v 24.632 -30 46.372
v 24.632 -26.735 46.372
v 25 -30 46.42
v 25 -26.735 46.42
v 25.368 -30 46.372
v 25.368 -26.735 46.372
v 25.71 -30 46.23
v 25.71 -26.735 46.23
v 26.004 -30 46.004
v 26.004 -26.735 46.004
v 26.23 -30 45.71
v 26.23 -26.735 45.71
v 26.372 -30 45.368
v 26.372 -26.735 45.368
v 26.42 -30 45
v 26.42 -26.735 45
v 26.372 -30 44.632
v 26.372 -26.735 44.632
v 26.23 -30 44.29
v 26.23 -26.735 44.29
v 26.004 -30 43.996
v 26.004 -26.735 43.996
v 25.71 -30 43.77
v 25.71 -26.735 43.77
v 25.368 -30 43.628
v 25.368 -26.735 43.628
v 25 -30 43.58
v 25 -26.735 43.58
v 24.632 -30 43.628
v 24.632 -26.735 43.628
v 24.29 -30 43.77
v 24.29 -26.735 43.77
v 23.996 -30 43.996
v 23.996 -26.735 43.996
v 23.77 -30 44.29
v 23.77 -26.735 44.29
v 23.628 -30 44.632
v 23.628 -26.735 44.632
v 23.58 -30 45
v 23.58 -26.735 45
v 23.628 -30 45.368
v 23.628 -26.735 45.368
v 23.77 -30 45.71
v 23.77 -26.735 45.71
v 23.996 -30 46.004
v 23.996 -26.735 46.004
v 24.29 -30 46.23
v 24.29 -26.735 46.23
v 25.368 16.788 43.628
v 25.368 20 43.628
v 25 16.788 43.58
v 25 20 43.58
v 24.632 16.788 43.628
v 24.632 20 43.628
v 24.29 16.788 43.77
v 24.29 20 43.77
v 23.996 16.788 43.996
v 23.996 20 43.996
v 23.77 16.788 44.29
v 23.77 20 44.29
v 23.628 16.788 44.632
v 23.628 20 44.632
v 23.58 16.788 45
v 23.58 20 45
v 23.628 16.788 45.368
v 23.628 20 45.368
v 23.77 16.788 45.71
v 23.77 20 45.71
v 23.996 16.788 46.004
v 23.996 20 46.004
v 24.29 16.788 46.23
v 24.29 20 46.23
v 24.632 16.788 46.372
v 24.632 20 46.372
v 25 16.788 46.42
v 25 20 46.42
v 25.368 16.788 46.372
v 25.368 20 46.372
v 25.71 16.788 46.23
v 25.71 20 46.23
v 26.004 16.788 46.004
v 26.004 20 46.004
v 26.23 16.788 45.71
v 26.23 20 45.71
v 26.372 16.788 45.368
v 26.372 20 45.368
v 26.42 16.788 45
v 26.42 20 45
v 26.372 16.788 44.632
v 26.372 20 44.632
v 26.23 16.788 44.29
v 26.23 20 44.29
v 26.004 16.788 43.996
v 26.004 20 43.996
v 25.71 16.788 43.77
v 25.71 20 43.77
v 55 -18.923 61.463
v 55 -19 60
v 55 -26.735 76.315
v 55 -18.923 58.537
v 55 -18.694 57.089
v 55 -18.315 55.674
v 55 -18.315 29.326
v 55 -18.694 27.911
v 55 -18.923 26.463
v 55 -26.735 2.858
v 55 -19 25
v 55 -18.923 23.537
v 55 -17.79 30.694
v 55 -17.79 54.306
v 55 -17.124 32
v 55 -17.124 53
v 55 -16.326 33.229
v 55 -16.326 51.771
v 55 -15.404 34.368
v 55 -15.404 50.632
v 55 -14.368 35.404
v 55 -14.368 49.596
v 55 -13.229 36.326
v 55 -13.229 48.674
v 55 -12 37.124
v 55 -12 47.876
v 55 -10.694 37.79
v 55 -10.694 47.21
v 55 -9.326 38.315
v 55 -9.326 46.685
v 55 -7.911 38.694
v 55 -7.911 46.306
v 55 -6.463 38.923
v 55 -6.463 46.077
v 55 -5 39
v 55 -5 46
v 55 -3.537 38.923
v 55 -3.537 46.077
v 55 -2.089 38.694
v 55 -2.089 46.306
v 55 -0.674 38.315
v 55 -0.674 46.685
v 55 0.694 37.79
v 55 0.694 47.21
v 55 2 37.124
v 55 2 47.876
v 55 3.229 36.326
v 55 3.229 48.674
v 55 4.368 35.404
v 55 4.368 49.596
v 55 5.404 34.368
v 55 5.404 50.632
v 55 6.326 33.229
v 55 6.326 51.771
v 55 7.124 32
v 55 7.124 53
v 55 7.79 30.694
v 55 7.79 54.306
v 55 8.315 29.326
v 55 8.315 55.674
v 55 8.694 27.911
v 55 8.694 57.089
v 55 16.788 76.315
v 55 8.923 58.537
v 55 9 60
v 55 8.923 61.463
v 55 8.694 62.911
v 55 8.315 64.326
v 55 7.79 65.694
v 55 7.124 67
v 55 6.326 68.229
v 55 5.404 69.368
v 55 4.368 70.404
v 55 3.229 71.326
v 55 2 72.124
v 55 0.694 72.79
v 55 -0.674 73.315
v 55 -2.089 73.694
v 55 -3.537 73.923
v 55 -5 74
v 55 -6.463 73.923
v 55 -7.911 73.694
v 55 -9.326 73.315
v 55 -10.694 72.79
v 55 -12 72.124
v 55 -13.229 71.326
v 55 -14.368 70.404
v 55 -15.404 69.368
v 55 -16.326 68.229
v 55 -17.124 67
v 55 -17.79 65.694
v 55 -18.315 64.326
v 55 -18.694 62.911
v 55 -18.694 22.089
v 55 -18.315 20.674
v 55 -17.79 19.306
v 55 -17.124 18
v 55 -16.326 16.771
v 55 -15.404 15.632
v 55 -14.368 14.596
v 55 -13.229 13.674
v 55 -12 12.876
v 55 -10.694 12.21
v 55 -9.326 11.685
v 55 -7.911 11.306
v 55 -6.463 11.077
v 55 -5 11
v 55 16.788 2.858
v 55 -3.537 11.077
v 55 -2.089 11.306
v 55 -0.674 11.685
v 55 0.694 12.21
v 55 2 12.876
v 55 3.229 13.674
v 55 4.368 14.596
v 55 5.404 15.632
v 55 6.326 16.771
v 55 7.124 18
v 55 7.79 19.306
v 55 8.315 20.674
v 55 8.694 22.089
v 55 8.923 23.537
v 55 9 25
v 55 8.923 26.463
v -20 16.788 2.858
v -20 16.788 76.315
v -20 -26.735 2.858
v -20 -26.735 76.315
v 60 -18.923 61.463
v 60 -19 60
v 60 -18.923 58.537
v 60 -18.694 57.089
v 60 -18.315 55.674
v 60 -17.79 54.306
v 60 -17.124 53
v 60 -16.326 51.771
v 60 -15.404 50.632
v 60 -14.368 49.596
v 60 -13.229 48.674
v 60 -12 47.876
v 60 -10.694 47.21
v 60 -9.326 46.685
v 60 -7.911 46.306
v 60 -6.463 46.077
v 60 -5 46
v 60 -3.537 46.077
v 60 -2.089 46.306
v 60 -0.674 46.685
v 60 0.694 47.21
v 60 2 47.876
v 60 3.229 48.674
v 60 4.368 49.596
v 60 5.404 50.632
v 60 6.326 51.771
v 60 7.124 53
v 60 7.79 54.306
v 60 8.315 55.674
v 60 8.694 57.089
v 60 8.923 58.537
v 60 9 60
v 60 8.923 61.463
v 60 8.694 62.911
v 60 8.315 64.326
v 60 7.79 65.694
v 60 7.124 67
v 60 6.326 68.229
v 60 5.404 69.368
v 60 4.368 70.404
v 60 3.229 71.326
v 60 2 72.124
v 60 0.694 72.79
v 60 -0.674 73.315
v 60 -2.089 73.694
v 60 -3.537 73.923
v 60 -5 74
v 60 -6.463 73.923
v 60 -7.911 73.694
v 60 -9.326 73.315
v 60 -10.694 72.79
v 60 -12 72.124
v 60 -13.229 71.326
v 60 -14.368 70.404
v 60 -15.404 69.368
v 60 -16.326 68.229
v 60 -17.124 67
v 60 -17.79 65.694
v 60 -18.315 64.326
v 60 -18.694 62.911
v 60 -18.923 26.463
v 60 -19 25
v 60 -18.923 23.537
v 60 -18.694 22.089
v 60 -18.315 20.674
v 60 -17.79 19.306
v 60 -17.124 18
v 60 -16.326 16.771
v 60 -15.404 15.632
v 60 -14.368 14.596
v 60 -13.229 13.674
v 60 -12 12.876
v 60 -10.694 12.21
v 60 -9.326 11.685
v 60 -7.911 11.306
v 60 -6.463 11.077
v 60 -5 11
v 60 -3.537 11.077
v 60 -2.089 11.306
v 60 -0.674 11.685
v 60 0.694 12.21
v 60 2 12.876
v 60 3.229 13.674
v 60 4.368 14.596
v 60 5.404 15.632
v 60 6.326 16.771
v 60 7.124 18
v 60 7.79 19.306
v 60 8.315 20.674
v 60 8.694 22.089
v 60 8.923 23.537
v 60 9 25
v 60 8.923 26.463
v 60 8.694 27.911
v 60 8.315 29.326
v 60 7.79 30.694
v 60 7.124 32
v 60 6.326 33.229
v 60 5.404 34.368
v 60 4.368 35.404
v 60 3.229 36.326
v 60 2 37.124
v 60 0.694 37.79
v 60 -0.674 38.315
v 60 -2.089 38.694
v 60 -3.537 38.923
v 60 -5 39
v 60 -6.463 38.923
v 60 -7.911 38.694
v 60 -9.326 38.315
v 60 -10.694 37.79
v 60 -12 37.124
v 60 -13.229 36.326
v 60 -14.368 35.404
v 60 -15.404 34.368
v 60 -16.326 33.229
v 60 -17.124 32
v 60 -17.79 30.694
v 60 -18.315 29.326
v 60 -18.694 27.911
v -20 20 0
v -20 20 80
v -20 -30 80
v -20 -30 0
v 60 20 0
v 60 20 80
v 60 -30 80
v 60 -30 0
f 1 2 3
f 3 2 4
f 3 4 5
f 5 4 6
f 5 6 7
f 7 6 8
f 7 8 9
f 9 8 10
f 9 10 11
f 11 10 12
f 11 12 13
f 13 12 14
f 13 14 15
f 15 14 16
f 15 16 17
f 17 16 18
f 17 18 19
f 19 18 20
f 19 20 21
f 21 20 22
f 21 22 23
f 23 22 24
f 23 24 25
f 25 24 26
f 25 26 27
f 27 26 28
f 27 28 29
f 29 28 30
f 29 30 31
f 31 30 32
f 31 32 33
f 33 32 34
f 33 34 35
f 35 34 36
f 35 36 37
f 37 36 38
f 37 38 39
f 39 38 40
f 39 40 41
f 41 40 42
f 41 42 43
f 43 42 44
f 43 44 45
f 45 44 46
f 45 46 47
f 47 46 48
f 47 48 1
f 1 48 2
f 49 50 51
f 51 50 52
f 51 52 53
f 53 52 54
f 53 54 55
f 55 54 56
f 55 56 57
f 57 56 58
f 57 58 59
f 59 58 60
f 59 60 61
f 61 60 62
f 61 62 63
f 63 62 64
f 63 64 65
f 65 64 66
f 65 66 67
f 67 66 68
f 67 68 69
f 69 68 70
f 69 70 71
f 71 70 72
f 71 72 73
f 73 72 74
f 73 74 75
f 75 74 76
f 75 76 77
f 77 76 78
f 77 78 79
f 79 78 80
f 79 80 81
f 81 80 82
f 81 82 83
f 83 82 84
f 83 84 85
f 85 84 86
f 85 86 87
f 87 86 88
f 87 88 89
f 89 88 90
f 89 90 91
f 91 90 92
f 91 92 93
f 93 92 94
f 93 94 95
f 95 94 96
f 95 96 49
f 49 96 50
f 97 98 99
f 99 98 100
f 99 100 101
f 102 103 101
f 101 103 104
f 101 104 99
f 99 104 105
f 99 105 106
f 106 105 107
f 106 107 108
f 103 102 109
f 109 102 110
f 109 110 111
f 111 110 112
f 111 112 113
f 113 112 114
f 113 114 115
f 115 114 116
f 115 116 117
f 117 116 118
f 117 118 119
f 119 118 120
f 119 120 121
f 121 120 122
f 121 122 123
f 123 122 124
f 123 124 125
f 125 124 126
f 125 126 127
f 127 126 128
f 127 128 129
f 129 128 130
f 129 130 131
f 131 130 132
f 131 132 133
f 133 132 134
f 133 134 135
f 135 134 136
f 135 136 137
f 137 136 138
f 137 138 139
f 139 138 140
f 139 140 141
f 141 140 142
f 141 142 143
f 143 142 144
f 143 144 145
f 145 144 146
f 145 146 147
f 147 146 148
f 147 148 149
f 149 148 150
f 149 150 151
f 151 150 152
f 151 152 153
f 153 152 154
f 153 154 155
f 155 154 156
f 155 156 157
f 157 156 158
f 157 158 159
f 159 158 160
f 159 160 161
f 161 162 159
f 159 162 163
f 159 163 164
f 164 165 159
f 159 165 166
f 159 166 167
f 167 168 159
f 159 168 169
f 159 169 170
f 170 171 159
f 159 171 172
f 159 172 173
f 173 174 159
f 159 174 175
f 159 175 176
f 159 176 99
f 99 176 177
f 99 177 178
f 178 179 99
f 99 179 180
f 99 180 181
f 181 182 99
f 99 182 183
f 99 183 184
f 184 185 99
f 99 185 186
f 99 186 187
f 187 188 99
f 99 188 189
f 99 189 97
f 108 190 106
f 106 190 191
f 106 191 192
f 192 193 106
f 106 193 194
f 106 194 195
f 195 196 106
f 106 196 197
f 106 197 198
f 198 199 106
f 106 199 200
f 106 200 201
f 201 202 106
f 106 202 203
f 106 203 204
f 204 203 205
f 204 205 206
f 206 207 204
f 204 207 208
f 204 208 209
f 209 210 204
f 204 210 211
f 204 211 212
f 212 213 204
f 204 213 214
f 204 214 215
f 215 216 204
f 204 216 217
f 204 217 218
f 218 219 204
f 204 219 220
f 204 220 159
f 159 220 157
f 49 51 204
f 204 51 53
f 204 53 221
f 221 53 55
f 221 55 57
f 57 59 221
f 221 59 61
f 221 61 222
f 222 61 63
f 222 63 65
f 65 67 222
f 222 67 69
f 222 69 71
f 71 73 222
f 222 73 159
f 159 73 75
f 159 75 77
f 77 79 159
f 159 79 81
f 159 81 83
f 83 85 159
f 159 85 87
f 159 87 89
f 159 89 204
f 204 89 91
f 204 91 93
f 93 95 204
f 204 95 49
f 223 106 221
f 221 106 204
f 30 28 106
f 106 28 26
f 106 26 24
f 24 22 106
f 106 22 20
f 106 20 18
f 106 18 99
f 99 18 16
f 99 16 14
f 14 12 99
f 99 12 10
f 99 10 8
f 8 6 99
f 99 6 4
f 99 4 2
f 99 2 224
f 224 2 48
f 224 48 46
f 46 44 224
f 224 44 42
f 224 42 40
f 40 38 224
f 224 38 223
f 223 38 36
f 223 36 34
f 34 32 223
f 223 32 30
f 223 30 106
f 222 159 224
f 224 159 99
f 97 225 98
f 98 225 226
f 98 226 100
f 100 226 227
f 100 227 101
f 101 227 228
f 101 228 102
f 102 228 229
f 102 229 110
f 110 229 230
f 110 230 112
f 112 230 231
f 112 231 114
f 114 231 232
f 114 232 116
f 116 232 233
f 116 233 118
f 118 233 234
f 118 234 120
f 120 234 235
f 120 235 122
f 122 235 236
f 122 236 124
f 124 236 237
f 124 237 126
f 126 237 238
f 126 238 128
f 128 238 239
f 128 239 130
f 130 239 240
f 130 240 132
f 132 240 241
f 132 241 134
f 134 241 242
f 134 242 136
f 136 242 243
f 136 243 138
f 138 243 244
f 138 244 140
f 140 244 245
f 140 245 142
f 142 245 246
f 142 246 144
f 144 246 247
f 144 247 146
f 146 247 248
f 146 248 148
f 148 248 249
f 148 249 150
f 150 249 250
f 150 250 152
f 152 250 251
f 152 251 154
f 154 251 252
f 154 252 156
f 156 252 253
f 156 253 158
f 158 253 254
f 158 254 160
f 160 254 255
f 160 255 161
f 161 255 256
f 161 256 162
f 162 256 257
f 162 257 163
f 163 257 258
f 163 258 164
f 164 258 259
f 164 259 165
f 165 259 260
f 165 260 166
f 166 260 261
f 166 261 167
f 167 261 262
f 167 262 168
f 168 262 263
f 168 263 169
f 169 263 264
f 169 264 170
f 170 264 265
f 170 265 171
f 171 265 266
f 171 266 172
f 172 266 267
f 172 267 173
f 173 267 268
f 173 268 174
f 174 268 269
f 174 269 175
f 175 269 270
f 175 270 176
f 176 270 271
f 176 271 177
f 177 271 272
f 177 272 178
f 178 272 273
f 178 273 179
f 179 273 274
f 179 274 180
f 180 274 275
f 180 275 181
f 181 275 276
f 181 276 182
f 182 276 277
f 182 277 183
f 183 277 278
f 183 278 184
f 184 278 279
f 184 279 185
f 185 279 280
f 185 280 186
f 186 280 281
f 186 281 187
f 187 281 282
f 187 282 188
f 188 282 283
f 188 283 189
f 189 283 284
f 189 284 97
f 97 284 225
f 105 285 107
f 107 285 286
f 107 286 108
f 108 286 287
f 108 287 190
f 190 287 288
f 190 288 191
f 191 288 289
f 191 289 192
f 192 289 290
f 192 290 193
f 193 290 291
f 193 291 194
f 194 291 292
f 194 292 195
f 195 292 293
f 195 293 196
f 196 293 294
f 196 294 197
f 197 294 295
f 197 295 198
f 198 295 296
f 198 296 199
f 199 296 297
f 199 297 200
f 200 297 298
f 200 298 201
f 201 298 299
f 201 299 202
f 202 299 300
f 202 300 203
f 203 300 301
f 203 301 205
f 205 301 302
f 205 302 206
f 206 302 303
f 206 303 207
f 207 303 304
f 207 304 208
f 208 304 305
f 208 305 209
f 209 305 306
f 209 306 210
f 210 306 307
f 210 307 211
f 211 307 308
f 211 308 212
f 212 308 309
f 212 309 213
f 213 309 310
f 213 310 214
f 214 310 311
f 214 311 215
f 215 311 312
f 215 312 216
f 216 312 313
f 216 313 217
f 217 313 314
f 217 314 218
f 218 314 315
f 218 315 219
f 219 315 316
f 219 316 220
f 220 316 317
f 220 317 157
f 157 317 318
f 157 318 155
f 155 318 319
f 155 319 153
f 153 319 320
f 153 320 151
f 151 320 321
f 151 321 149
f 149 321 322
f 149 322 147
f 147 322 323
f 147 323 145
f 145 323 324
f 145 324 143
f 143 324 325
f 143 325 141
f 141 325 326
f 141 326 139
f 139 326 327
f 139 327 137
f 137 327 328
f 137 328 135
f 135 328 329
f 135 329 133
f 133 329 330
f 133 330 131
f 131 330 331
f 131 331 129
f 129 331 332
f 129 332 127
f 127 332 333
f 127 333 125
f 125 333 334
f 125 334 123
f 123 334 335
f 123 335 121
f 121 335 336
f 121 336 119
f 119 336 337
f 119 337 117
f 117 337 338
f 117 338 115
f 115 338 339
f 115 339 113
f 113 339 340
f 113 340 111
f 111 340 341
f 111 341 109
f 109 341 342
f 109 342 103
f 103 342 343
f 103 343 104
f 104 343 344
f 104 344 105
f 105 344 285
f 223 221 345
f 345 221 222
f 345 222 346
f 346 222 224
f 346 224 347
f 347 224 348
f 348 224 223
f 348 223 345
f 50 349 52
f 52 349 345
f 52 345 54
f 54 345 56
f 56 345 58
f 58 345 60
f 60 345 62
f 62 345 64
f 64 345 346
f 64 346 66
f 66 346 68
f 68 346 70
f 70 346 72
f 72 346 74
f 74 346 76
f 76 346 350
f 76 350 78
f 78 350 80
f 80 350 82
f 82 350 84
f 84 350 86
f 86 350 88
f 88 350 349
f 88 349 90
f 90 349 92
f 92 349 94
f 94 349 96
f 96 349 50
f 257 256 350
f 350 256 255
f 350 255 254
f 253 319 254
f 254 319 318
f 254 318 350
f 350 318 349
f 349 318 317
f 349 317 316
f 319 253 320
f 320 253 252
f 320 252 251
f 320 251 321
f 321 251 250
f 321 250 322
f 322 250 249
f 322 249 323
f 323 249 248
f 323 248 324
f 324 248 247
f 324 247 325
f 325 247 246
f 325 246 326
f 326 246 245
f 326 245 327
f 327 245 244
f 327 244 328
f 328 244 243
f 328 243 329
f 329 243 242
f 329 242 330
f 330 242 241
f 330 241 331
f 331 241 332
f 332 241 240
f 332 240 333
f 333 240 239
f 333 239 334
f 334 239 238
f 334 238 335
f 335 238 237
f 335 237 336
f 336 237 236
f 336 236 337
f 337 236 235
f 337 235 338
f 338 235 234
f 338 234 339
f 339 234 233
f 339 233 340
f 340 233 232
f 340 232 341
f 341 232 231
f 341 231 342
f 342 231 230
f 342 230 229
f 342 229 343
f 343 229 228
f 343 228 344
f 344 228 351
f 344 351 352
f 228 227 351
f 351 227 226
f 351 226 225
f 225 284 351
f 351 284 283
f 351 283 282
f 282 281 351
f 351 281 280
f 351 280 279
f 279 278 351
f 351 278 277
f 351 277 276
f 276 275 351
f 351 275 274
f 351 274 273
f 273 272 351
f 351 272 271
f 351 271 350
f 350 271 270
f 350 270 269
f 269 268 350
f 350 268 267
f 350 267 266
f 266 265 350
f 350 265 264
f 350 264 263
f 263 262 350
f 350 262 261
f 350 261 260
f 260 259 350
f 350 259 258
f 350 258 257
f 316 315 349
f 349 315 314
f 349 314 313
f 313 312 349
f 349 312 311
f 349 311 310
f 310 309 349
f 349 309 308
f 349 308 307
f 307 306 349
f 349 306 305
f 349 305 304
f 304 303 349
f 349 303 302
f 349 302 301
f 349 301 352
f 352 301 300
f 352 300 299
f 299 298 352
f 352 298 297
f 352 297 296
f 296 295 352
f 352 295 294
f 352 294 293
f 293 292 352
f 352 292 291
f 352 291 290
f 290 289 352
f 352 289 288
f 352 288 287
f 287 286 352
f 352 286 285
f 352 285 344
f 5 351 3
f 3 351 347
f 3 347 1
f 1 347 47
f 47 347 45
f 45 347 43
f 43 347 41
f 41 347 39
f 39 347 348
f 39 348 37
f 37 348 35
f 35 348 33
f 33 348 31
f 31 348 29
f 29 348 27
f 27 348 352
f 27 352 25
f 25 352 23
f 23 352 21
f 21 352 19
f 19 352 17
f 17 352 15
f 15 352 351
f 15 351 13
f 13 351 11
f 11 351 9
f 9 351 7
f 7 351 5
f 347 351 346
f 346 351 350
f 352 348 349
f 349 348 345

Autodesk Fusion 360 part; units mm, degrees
sketch "Sketch1" plane through (0, 0, 0) normal (0, 0, 1) x (1, 0, 0)
  line L0 (-20, 20) -> (60, 20)
  line L1 (60, 20) -> (60, -30)
  line L2 (60, -30) -> (-20, -30)
  line L3 (-20, -30) -> (-20, 20)
  dimension "d1" = 80
  dimension "d2" = 50
extrude "Extrude1" add sketch "Sketch1" along normal blind 80
cylinder "CylinderPrimitive1" cut diameter 28 height -100 placed x (0, 0, -1) y (0, 1, 0) z (1, 0, 0) at (60, -5, 25)
cylinder "CylinderPrimitive2" cut diameter 28 height -95 placed x (0, 0, -1) y (0, 1, 0) z (1, 0, 0) at (60, -5, 60)
box "BoxPrimitive1" cut length 73.4567 width 43.5237 height -75 placed x (0, 0, -1) y (0, -1, 0) z (-1, 0, 0) at (-20, 16.7884, 76.3145)
cylinder "CylinderPrimitive3" cut diameter 2.84 height -65 placed x (1, 0, 0) y (0, 0, 1) z (0, -1, 0) at (25, -30, 45)
